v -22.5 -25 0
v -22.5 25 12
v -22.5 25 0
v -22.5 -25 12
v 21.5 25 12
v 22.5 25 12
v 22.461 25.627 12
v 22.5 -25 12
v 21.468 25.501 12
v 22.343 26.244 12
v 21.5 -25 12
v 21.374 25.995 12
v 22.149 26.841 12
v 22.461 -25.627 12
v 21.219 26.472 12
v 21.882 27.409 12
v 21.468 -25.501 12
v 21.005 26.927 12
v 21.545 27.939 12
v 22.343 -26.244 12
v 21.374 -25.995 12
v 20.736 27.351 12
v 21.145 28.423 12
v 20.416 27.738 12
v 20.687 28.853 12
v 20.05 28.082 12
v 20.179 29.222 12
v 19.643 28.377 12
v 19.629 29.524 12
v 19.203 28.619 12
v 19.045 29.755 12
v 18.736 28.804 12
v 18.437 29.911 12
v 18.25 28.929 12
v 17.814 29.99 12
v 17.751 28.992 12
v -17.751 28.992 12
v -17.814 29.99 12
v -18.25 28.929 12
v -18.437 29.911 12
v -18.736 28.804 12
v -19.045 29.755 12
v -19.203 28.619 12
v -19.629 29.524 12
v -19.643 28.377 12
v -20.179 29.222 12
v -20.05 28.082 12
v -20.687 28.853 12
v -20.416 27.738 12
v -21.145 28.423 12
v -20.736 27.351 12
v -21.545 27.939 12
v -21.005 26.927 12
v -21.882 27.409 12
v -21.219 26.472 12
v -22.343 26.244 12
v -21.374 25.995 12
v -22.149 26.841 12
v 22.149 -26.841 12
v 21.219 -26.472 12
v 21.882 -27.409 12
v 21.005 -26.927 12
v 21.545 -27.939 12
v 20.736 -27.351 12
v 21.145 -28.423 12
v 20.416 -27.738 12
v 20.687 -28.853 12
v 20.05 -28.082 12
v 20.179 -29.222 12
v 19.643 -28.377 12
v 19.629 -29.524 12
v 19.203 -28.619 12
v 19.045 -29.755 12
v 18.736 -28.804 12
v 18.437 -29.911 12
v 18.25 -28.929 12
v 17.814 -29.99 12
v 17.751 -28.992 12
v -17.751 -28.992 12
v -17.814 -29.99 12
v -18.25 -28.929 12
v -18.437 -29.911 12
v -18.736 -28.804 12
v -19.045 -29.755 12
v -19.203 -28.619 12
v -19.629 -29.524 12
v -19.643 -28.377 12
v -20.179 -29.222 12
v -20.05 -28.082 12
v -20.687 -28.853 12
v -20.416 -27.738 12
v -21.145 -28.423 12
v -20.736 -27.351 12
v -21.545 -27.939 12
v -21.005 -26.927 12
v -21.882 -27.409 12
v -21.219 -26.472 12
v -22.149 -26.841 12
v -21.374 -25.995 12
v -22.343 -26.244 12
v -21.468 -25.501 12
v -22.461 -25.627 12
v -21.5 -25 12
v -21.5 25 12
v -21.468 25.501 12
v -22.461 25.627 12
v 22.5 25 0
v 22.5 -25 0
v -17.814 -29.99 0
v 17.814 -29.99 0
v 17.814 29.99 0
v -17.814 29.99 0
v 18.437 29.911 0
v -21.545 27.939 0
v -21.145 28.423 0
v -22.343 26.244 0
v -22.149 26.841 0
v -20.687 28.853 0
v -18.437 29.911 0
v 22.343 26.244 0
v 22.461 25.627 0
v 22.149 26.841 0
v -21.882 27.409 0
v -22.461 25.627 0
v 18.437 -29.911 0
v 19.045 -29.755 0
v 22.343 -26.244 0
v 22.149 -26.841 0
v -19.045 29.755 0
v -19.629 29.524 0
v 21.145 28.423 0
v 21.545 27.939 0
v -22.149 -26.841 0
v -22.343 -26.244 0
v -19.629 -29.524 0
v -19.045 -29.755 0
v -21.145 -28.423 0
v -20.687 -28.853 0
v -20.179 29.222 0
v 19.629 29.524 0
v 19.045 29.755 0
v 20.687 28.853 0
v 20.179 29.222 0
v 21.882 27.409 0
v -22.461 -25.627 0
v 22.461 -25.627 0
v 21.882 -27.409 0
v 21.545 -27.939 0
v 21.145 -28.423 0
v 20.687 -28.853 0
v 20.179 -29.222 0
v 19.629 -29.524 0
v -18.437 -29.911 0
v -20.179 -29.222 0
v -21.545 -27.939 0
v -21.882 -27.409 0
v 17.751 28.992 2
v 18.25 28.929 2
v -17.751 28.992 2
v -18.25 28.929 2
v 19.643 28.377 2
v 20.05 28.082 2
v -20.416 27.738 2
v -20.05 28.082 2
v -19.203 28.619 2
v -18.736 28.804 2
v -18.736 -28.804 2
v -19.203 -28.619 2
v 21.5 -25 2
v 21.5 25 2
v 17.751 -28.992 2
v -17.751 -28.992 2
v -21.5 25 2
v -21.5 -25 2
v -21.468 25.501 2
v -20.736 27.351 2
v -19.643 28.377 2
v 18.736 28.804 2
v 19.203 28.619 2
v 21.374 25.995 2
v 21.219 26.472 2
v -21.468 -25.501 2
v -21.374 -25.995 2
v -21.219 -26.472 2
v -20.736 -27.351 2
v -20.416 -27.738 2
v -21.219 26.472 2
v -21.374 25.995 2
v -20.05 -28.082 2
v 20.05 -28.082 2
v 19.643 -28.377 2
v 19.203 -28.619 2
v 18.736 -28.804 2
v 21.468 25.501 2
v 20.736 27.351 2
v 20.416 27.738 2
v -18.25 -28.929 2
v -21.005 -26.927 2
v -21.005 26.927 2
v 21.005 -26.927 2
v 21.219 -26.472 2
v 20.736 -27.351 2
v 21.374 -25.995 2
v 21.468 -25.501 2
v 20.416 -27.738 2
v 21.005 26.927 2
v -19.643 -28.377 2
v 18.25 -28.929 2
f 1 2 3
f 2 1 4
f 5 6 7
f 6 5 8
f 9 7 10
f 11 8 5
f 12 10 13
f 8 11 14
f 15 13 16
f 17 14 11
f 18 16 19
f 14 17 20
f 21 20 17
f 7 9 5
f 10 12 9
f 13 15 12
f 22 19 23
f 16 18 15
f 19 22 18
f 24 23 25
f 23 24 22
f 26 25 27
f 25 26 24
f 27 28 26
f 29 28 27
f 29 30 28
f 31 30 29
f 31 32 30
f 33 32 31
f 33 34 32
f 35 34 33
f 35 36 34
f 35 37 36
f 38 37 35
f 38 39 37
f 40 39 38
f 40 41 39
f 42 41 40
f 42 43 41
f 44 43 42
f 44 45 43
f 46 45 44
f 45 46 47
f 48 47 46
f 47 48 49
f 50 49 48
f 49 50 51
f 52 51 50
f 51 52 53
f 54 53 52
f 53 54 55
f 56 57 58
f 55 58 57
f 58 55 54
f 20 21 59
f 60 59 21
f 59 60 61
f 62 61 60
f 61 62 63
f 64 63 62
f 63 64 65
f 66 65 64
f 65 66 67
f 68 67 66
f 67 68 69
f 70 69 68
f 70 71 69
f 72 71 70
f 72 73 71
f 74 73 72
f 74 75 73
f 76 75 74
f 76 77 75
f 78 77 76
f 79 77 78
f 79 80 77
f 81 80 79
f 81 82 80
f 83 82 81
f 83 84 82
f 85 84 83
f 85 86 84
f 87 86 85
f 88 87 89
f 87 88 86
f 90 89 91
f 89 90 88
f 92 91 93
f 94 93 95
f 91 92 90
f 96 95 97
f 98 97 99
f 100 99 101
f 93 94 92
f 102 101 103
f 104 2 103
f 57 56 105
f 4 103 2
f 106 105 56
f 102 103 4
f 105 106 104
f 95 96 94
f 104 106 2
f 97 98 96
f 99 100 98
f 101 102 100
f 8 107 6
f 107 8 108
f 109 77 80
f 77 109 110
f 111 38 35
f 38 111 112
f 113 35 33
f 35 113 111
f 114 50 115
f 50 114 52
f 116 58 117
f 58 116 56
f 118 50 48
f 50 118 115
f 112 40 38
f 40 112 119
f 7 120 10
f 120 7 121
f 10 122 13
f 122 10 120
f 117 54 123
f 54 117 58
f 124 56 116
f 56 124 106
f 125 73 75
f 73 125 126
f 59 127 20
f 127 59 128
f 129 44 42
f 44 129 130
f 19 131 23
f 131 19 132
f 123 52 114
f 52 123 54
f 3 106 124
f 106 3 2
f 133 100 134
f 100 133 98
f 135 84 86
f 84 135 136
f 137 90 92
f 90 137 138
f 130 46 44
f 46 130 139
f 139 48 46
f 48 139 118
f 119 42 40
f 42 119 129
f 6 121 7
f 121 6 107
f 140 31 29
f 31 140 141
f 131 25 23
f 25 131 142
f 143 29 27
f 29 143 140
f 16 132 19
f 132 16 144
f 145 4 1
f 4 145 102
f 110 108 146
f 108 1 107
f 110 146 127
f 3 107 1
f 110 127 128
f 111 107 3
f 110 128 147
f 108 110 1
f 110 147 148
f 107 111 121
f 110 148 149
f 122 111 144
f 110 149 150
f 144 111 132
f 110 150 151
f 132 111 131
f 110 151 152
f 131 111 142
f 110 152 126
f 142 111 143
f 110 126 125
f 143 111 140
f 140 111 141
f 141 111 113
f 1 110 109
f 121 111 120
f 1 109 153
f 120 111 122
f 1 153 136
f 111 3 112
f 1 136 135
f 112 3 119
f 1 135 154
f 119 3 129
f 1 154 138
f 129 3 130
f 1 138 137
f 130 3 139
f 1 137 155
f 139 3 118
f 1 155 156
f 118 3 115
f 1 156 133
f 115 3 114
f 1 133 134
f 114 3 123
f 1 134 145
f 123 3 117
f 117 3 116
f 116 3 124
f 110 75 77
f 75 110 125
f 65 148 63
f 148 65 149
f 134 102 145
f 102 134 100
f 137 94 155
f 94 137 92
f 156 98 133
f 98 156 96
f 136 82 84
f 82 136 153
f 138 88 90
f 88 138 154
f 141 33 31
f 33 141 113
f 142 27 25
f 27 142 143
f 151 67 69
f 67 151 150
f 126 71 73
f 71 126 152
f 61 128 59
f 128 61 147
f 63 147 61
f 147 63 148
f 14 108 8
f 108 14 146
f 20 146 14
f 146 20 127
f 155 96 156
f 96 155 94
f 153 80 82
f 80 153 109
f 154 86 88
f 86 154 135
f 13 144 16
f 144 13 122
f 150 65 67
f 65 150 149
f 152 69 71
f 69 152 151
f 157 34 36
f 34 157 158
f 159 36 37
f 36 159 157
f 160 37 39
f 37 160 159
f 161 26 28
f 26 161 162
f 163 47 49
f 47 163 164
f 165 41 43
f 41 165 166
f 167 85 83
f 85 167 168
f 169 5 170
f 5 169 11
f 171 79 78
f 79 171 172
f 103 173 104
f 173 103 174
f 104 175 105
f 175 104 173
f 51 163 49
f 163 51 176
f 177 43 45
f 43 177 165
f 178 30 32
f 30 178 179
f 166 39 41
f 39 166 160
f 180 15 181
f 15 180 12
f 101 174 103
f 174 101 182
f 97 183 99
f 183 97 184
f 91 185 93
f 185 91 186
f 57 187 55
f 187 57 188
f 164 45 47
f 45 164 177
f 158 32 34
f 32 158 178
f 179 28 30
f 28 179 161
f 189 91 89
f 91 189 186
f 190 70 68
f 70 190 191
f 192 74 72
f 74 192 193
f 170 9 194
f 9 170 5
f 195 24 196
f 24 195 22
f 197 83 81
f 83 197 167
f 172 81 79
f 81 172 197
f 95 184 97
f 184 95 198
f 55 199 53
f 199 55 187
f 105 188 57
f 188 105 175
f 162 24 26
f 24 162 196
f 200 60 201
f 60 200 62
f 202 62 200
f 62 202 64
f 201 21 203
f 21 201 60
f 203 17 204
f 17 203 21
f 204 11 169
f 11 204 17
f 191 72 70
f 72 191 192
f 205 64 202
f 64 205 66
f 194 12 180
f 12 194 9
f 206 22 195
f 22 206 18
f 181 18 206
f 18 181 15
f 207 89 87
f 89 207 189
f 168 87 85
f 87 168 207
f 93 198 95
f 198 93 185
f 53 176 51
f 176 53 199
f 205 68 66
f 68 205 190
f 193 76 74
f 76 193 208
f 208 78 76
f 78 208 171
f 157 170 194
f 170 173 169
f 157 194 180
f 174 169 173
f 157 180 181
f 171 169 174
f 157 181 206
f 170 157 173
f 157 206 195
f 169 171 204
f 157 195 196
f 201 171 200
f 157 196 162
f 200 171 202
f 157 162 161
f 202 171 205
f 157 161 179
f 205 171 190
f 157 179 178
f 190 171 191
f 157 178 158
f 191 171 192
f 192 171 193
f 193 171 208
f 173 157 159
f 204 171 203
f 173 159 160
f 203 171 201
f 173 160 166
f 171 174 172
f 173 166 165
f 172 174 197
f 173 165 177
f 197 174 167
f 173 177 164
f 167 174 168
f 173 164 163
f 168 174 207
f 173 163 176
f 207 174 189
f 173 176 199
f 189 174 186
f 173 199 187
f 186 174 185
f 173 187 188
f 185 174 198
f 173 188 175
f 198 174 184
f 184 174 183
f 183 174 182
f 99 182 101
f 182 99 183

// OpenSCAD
$fn = 50;


difference() {
	union() {
		hull() {
			translate(v = [-17.5000000000, 25.0000000000, 0]) {
				cylinder(h = 12, r = 5);
			}
			translate(v = [17.5000000000, 25.0000000000, 0]) {
				cylinder(h = 12, r = 5);
			}
			translate(v = [-17.5000000000, -25.0000000000, 0]) {
				cylinder(h = 12, r = 5);
			}
			translate(v = [17.5000000000, -25.0000000000, 0]) {
				cylinder(h = 12, r = 5);
			}
		}
	}
	union() {
		translate(v = [0, 0, 2]) {
			hull() {
				translate(v = [-17.5000000000, 25.0000000000, 0]) {
					cylinder(h = 10, r = 4);
				}
				translate(v = [17.5000000000, 25.0000000000, 0]) {
					cylinder(h = 10, r = 4);
				}
				translate(v = [-17.5000000000, -25.0000000000, 0]) {
					cylinder(h = 10, r = 4);
				}
				translate(v = [17.5000000000, -25.0000000000, 0]) {
					cylinder(h = 10, r = 4);
				}
			}
		}
	}
}
